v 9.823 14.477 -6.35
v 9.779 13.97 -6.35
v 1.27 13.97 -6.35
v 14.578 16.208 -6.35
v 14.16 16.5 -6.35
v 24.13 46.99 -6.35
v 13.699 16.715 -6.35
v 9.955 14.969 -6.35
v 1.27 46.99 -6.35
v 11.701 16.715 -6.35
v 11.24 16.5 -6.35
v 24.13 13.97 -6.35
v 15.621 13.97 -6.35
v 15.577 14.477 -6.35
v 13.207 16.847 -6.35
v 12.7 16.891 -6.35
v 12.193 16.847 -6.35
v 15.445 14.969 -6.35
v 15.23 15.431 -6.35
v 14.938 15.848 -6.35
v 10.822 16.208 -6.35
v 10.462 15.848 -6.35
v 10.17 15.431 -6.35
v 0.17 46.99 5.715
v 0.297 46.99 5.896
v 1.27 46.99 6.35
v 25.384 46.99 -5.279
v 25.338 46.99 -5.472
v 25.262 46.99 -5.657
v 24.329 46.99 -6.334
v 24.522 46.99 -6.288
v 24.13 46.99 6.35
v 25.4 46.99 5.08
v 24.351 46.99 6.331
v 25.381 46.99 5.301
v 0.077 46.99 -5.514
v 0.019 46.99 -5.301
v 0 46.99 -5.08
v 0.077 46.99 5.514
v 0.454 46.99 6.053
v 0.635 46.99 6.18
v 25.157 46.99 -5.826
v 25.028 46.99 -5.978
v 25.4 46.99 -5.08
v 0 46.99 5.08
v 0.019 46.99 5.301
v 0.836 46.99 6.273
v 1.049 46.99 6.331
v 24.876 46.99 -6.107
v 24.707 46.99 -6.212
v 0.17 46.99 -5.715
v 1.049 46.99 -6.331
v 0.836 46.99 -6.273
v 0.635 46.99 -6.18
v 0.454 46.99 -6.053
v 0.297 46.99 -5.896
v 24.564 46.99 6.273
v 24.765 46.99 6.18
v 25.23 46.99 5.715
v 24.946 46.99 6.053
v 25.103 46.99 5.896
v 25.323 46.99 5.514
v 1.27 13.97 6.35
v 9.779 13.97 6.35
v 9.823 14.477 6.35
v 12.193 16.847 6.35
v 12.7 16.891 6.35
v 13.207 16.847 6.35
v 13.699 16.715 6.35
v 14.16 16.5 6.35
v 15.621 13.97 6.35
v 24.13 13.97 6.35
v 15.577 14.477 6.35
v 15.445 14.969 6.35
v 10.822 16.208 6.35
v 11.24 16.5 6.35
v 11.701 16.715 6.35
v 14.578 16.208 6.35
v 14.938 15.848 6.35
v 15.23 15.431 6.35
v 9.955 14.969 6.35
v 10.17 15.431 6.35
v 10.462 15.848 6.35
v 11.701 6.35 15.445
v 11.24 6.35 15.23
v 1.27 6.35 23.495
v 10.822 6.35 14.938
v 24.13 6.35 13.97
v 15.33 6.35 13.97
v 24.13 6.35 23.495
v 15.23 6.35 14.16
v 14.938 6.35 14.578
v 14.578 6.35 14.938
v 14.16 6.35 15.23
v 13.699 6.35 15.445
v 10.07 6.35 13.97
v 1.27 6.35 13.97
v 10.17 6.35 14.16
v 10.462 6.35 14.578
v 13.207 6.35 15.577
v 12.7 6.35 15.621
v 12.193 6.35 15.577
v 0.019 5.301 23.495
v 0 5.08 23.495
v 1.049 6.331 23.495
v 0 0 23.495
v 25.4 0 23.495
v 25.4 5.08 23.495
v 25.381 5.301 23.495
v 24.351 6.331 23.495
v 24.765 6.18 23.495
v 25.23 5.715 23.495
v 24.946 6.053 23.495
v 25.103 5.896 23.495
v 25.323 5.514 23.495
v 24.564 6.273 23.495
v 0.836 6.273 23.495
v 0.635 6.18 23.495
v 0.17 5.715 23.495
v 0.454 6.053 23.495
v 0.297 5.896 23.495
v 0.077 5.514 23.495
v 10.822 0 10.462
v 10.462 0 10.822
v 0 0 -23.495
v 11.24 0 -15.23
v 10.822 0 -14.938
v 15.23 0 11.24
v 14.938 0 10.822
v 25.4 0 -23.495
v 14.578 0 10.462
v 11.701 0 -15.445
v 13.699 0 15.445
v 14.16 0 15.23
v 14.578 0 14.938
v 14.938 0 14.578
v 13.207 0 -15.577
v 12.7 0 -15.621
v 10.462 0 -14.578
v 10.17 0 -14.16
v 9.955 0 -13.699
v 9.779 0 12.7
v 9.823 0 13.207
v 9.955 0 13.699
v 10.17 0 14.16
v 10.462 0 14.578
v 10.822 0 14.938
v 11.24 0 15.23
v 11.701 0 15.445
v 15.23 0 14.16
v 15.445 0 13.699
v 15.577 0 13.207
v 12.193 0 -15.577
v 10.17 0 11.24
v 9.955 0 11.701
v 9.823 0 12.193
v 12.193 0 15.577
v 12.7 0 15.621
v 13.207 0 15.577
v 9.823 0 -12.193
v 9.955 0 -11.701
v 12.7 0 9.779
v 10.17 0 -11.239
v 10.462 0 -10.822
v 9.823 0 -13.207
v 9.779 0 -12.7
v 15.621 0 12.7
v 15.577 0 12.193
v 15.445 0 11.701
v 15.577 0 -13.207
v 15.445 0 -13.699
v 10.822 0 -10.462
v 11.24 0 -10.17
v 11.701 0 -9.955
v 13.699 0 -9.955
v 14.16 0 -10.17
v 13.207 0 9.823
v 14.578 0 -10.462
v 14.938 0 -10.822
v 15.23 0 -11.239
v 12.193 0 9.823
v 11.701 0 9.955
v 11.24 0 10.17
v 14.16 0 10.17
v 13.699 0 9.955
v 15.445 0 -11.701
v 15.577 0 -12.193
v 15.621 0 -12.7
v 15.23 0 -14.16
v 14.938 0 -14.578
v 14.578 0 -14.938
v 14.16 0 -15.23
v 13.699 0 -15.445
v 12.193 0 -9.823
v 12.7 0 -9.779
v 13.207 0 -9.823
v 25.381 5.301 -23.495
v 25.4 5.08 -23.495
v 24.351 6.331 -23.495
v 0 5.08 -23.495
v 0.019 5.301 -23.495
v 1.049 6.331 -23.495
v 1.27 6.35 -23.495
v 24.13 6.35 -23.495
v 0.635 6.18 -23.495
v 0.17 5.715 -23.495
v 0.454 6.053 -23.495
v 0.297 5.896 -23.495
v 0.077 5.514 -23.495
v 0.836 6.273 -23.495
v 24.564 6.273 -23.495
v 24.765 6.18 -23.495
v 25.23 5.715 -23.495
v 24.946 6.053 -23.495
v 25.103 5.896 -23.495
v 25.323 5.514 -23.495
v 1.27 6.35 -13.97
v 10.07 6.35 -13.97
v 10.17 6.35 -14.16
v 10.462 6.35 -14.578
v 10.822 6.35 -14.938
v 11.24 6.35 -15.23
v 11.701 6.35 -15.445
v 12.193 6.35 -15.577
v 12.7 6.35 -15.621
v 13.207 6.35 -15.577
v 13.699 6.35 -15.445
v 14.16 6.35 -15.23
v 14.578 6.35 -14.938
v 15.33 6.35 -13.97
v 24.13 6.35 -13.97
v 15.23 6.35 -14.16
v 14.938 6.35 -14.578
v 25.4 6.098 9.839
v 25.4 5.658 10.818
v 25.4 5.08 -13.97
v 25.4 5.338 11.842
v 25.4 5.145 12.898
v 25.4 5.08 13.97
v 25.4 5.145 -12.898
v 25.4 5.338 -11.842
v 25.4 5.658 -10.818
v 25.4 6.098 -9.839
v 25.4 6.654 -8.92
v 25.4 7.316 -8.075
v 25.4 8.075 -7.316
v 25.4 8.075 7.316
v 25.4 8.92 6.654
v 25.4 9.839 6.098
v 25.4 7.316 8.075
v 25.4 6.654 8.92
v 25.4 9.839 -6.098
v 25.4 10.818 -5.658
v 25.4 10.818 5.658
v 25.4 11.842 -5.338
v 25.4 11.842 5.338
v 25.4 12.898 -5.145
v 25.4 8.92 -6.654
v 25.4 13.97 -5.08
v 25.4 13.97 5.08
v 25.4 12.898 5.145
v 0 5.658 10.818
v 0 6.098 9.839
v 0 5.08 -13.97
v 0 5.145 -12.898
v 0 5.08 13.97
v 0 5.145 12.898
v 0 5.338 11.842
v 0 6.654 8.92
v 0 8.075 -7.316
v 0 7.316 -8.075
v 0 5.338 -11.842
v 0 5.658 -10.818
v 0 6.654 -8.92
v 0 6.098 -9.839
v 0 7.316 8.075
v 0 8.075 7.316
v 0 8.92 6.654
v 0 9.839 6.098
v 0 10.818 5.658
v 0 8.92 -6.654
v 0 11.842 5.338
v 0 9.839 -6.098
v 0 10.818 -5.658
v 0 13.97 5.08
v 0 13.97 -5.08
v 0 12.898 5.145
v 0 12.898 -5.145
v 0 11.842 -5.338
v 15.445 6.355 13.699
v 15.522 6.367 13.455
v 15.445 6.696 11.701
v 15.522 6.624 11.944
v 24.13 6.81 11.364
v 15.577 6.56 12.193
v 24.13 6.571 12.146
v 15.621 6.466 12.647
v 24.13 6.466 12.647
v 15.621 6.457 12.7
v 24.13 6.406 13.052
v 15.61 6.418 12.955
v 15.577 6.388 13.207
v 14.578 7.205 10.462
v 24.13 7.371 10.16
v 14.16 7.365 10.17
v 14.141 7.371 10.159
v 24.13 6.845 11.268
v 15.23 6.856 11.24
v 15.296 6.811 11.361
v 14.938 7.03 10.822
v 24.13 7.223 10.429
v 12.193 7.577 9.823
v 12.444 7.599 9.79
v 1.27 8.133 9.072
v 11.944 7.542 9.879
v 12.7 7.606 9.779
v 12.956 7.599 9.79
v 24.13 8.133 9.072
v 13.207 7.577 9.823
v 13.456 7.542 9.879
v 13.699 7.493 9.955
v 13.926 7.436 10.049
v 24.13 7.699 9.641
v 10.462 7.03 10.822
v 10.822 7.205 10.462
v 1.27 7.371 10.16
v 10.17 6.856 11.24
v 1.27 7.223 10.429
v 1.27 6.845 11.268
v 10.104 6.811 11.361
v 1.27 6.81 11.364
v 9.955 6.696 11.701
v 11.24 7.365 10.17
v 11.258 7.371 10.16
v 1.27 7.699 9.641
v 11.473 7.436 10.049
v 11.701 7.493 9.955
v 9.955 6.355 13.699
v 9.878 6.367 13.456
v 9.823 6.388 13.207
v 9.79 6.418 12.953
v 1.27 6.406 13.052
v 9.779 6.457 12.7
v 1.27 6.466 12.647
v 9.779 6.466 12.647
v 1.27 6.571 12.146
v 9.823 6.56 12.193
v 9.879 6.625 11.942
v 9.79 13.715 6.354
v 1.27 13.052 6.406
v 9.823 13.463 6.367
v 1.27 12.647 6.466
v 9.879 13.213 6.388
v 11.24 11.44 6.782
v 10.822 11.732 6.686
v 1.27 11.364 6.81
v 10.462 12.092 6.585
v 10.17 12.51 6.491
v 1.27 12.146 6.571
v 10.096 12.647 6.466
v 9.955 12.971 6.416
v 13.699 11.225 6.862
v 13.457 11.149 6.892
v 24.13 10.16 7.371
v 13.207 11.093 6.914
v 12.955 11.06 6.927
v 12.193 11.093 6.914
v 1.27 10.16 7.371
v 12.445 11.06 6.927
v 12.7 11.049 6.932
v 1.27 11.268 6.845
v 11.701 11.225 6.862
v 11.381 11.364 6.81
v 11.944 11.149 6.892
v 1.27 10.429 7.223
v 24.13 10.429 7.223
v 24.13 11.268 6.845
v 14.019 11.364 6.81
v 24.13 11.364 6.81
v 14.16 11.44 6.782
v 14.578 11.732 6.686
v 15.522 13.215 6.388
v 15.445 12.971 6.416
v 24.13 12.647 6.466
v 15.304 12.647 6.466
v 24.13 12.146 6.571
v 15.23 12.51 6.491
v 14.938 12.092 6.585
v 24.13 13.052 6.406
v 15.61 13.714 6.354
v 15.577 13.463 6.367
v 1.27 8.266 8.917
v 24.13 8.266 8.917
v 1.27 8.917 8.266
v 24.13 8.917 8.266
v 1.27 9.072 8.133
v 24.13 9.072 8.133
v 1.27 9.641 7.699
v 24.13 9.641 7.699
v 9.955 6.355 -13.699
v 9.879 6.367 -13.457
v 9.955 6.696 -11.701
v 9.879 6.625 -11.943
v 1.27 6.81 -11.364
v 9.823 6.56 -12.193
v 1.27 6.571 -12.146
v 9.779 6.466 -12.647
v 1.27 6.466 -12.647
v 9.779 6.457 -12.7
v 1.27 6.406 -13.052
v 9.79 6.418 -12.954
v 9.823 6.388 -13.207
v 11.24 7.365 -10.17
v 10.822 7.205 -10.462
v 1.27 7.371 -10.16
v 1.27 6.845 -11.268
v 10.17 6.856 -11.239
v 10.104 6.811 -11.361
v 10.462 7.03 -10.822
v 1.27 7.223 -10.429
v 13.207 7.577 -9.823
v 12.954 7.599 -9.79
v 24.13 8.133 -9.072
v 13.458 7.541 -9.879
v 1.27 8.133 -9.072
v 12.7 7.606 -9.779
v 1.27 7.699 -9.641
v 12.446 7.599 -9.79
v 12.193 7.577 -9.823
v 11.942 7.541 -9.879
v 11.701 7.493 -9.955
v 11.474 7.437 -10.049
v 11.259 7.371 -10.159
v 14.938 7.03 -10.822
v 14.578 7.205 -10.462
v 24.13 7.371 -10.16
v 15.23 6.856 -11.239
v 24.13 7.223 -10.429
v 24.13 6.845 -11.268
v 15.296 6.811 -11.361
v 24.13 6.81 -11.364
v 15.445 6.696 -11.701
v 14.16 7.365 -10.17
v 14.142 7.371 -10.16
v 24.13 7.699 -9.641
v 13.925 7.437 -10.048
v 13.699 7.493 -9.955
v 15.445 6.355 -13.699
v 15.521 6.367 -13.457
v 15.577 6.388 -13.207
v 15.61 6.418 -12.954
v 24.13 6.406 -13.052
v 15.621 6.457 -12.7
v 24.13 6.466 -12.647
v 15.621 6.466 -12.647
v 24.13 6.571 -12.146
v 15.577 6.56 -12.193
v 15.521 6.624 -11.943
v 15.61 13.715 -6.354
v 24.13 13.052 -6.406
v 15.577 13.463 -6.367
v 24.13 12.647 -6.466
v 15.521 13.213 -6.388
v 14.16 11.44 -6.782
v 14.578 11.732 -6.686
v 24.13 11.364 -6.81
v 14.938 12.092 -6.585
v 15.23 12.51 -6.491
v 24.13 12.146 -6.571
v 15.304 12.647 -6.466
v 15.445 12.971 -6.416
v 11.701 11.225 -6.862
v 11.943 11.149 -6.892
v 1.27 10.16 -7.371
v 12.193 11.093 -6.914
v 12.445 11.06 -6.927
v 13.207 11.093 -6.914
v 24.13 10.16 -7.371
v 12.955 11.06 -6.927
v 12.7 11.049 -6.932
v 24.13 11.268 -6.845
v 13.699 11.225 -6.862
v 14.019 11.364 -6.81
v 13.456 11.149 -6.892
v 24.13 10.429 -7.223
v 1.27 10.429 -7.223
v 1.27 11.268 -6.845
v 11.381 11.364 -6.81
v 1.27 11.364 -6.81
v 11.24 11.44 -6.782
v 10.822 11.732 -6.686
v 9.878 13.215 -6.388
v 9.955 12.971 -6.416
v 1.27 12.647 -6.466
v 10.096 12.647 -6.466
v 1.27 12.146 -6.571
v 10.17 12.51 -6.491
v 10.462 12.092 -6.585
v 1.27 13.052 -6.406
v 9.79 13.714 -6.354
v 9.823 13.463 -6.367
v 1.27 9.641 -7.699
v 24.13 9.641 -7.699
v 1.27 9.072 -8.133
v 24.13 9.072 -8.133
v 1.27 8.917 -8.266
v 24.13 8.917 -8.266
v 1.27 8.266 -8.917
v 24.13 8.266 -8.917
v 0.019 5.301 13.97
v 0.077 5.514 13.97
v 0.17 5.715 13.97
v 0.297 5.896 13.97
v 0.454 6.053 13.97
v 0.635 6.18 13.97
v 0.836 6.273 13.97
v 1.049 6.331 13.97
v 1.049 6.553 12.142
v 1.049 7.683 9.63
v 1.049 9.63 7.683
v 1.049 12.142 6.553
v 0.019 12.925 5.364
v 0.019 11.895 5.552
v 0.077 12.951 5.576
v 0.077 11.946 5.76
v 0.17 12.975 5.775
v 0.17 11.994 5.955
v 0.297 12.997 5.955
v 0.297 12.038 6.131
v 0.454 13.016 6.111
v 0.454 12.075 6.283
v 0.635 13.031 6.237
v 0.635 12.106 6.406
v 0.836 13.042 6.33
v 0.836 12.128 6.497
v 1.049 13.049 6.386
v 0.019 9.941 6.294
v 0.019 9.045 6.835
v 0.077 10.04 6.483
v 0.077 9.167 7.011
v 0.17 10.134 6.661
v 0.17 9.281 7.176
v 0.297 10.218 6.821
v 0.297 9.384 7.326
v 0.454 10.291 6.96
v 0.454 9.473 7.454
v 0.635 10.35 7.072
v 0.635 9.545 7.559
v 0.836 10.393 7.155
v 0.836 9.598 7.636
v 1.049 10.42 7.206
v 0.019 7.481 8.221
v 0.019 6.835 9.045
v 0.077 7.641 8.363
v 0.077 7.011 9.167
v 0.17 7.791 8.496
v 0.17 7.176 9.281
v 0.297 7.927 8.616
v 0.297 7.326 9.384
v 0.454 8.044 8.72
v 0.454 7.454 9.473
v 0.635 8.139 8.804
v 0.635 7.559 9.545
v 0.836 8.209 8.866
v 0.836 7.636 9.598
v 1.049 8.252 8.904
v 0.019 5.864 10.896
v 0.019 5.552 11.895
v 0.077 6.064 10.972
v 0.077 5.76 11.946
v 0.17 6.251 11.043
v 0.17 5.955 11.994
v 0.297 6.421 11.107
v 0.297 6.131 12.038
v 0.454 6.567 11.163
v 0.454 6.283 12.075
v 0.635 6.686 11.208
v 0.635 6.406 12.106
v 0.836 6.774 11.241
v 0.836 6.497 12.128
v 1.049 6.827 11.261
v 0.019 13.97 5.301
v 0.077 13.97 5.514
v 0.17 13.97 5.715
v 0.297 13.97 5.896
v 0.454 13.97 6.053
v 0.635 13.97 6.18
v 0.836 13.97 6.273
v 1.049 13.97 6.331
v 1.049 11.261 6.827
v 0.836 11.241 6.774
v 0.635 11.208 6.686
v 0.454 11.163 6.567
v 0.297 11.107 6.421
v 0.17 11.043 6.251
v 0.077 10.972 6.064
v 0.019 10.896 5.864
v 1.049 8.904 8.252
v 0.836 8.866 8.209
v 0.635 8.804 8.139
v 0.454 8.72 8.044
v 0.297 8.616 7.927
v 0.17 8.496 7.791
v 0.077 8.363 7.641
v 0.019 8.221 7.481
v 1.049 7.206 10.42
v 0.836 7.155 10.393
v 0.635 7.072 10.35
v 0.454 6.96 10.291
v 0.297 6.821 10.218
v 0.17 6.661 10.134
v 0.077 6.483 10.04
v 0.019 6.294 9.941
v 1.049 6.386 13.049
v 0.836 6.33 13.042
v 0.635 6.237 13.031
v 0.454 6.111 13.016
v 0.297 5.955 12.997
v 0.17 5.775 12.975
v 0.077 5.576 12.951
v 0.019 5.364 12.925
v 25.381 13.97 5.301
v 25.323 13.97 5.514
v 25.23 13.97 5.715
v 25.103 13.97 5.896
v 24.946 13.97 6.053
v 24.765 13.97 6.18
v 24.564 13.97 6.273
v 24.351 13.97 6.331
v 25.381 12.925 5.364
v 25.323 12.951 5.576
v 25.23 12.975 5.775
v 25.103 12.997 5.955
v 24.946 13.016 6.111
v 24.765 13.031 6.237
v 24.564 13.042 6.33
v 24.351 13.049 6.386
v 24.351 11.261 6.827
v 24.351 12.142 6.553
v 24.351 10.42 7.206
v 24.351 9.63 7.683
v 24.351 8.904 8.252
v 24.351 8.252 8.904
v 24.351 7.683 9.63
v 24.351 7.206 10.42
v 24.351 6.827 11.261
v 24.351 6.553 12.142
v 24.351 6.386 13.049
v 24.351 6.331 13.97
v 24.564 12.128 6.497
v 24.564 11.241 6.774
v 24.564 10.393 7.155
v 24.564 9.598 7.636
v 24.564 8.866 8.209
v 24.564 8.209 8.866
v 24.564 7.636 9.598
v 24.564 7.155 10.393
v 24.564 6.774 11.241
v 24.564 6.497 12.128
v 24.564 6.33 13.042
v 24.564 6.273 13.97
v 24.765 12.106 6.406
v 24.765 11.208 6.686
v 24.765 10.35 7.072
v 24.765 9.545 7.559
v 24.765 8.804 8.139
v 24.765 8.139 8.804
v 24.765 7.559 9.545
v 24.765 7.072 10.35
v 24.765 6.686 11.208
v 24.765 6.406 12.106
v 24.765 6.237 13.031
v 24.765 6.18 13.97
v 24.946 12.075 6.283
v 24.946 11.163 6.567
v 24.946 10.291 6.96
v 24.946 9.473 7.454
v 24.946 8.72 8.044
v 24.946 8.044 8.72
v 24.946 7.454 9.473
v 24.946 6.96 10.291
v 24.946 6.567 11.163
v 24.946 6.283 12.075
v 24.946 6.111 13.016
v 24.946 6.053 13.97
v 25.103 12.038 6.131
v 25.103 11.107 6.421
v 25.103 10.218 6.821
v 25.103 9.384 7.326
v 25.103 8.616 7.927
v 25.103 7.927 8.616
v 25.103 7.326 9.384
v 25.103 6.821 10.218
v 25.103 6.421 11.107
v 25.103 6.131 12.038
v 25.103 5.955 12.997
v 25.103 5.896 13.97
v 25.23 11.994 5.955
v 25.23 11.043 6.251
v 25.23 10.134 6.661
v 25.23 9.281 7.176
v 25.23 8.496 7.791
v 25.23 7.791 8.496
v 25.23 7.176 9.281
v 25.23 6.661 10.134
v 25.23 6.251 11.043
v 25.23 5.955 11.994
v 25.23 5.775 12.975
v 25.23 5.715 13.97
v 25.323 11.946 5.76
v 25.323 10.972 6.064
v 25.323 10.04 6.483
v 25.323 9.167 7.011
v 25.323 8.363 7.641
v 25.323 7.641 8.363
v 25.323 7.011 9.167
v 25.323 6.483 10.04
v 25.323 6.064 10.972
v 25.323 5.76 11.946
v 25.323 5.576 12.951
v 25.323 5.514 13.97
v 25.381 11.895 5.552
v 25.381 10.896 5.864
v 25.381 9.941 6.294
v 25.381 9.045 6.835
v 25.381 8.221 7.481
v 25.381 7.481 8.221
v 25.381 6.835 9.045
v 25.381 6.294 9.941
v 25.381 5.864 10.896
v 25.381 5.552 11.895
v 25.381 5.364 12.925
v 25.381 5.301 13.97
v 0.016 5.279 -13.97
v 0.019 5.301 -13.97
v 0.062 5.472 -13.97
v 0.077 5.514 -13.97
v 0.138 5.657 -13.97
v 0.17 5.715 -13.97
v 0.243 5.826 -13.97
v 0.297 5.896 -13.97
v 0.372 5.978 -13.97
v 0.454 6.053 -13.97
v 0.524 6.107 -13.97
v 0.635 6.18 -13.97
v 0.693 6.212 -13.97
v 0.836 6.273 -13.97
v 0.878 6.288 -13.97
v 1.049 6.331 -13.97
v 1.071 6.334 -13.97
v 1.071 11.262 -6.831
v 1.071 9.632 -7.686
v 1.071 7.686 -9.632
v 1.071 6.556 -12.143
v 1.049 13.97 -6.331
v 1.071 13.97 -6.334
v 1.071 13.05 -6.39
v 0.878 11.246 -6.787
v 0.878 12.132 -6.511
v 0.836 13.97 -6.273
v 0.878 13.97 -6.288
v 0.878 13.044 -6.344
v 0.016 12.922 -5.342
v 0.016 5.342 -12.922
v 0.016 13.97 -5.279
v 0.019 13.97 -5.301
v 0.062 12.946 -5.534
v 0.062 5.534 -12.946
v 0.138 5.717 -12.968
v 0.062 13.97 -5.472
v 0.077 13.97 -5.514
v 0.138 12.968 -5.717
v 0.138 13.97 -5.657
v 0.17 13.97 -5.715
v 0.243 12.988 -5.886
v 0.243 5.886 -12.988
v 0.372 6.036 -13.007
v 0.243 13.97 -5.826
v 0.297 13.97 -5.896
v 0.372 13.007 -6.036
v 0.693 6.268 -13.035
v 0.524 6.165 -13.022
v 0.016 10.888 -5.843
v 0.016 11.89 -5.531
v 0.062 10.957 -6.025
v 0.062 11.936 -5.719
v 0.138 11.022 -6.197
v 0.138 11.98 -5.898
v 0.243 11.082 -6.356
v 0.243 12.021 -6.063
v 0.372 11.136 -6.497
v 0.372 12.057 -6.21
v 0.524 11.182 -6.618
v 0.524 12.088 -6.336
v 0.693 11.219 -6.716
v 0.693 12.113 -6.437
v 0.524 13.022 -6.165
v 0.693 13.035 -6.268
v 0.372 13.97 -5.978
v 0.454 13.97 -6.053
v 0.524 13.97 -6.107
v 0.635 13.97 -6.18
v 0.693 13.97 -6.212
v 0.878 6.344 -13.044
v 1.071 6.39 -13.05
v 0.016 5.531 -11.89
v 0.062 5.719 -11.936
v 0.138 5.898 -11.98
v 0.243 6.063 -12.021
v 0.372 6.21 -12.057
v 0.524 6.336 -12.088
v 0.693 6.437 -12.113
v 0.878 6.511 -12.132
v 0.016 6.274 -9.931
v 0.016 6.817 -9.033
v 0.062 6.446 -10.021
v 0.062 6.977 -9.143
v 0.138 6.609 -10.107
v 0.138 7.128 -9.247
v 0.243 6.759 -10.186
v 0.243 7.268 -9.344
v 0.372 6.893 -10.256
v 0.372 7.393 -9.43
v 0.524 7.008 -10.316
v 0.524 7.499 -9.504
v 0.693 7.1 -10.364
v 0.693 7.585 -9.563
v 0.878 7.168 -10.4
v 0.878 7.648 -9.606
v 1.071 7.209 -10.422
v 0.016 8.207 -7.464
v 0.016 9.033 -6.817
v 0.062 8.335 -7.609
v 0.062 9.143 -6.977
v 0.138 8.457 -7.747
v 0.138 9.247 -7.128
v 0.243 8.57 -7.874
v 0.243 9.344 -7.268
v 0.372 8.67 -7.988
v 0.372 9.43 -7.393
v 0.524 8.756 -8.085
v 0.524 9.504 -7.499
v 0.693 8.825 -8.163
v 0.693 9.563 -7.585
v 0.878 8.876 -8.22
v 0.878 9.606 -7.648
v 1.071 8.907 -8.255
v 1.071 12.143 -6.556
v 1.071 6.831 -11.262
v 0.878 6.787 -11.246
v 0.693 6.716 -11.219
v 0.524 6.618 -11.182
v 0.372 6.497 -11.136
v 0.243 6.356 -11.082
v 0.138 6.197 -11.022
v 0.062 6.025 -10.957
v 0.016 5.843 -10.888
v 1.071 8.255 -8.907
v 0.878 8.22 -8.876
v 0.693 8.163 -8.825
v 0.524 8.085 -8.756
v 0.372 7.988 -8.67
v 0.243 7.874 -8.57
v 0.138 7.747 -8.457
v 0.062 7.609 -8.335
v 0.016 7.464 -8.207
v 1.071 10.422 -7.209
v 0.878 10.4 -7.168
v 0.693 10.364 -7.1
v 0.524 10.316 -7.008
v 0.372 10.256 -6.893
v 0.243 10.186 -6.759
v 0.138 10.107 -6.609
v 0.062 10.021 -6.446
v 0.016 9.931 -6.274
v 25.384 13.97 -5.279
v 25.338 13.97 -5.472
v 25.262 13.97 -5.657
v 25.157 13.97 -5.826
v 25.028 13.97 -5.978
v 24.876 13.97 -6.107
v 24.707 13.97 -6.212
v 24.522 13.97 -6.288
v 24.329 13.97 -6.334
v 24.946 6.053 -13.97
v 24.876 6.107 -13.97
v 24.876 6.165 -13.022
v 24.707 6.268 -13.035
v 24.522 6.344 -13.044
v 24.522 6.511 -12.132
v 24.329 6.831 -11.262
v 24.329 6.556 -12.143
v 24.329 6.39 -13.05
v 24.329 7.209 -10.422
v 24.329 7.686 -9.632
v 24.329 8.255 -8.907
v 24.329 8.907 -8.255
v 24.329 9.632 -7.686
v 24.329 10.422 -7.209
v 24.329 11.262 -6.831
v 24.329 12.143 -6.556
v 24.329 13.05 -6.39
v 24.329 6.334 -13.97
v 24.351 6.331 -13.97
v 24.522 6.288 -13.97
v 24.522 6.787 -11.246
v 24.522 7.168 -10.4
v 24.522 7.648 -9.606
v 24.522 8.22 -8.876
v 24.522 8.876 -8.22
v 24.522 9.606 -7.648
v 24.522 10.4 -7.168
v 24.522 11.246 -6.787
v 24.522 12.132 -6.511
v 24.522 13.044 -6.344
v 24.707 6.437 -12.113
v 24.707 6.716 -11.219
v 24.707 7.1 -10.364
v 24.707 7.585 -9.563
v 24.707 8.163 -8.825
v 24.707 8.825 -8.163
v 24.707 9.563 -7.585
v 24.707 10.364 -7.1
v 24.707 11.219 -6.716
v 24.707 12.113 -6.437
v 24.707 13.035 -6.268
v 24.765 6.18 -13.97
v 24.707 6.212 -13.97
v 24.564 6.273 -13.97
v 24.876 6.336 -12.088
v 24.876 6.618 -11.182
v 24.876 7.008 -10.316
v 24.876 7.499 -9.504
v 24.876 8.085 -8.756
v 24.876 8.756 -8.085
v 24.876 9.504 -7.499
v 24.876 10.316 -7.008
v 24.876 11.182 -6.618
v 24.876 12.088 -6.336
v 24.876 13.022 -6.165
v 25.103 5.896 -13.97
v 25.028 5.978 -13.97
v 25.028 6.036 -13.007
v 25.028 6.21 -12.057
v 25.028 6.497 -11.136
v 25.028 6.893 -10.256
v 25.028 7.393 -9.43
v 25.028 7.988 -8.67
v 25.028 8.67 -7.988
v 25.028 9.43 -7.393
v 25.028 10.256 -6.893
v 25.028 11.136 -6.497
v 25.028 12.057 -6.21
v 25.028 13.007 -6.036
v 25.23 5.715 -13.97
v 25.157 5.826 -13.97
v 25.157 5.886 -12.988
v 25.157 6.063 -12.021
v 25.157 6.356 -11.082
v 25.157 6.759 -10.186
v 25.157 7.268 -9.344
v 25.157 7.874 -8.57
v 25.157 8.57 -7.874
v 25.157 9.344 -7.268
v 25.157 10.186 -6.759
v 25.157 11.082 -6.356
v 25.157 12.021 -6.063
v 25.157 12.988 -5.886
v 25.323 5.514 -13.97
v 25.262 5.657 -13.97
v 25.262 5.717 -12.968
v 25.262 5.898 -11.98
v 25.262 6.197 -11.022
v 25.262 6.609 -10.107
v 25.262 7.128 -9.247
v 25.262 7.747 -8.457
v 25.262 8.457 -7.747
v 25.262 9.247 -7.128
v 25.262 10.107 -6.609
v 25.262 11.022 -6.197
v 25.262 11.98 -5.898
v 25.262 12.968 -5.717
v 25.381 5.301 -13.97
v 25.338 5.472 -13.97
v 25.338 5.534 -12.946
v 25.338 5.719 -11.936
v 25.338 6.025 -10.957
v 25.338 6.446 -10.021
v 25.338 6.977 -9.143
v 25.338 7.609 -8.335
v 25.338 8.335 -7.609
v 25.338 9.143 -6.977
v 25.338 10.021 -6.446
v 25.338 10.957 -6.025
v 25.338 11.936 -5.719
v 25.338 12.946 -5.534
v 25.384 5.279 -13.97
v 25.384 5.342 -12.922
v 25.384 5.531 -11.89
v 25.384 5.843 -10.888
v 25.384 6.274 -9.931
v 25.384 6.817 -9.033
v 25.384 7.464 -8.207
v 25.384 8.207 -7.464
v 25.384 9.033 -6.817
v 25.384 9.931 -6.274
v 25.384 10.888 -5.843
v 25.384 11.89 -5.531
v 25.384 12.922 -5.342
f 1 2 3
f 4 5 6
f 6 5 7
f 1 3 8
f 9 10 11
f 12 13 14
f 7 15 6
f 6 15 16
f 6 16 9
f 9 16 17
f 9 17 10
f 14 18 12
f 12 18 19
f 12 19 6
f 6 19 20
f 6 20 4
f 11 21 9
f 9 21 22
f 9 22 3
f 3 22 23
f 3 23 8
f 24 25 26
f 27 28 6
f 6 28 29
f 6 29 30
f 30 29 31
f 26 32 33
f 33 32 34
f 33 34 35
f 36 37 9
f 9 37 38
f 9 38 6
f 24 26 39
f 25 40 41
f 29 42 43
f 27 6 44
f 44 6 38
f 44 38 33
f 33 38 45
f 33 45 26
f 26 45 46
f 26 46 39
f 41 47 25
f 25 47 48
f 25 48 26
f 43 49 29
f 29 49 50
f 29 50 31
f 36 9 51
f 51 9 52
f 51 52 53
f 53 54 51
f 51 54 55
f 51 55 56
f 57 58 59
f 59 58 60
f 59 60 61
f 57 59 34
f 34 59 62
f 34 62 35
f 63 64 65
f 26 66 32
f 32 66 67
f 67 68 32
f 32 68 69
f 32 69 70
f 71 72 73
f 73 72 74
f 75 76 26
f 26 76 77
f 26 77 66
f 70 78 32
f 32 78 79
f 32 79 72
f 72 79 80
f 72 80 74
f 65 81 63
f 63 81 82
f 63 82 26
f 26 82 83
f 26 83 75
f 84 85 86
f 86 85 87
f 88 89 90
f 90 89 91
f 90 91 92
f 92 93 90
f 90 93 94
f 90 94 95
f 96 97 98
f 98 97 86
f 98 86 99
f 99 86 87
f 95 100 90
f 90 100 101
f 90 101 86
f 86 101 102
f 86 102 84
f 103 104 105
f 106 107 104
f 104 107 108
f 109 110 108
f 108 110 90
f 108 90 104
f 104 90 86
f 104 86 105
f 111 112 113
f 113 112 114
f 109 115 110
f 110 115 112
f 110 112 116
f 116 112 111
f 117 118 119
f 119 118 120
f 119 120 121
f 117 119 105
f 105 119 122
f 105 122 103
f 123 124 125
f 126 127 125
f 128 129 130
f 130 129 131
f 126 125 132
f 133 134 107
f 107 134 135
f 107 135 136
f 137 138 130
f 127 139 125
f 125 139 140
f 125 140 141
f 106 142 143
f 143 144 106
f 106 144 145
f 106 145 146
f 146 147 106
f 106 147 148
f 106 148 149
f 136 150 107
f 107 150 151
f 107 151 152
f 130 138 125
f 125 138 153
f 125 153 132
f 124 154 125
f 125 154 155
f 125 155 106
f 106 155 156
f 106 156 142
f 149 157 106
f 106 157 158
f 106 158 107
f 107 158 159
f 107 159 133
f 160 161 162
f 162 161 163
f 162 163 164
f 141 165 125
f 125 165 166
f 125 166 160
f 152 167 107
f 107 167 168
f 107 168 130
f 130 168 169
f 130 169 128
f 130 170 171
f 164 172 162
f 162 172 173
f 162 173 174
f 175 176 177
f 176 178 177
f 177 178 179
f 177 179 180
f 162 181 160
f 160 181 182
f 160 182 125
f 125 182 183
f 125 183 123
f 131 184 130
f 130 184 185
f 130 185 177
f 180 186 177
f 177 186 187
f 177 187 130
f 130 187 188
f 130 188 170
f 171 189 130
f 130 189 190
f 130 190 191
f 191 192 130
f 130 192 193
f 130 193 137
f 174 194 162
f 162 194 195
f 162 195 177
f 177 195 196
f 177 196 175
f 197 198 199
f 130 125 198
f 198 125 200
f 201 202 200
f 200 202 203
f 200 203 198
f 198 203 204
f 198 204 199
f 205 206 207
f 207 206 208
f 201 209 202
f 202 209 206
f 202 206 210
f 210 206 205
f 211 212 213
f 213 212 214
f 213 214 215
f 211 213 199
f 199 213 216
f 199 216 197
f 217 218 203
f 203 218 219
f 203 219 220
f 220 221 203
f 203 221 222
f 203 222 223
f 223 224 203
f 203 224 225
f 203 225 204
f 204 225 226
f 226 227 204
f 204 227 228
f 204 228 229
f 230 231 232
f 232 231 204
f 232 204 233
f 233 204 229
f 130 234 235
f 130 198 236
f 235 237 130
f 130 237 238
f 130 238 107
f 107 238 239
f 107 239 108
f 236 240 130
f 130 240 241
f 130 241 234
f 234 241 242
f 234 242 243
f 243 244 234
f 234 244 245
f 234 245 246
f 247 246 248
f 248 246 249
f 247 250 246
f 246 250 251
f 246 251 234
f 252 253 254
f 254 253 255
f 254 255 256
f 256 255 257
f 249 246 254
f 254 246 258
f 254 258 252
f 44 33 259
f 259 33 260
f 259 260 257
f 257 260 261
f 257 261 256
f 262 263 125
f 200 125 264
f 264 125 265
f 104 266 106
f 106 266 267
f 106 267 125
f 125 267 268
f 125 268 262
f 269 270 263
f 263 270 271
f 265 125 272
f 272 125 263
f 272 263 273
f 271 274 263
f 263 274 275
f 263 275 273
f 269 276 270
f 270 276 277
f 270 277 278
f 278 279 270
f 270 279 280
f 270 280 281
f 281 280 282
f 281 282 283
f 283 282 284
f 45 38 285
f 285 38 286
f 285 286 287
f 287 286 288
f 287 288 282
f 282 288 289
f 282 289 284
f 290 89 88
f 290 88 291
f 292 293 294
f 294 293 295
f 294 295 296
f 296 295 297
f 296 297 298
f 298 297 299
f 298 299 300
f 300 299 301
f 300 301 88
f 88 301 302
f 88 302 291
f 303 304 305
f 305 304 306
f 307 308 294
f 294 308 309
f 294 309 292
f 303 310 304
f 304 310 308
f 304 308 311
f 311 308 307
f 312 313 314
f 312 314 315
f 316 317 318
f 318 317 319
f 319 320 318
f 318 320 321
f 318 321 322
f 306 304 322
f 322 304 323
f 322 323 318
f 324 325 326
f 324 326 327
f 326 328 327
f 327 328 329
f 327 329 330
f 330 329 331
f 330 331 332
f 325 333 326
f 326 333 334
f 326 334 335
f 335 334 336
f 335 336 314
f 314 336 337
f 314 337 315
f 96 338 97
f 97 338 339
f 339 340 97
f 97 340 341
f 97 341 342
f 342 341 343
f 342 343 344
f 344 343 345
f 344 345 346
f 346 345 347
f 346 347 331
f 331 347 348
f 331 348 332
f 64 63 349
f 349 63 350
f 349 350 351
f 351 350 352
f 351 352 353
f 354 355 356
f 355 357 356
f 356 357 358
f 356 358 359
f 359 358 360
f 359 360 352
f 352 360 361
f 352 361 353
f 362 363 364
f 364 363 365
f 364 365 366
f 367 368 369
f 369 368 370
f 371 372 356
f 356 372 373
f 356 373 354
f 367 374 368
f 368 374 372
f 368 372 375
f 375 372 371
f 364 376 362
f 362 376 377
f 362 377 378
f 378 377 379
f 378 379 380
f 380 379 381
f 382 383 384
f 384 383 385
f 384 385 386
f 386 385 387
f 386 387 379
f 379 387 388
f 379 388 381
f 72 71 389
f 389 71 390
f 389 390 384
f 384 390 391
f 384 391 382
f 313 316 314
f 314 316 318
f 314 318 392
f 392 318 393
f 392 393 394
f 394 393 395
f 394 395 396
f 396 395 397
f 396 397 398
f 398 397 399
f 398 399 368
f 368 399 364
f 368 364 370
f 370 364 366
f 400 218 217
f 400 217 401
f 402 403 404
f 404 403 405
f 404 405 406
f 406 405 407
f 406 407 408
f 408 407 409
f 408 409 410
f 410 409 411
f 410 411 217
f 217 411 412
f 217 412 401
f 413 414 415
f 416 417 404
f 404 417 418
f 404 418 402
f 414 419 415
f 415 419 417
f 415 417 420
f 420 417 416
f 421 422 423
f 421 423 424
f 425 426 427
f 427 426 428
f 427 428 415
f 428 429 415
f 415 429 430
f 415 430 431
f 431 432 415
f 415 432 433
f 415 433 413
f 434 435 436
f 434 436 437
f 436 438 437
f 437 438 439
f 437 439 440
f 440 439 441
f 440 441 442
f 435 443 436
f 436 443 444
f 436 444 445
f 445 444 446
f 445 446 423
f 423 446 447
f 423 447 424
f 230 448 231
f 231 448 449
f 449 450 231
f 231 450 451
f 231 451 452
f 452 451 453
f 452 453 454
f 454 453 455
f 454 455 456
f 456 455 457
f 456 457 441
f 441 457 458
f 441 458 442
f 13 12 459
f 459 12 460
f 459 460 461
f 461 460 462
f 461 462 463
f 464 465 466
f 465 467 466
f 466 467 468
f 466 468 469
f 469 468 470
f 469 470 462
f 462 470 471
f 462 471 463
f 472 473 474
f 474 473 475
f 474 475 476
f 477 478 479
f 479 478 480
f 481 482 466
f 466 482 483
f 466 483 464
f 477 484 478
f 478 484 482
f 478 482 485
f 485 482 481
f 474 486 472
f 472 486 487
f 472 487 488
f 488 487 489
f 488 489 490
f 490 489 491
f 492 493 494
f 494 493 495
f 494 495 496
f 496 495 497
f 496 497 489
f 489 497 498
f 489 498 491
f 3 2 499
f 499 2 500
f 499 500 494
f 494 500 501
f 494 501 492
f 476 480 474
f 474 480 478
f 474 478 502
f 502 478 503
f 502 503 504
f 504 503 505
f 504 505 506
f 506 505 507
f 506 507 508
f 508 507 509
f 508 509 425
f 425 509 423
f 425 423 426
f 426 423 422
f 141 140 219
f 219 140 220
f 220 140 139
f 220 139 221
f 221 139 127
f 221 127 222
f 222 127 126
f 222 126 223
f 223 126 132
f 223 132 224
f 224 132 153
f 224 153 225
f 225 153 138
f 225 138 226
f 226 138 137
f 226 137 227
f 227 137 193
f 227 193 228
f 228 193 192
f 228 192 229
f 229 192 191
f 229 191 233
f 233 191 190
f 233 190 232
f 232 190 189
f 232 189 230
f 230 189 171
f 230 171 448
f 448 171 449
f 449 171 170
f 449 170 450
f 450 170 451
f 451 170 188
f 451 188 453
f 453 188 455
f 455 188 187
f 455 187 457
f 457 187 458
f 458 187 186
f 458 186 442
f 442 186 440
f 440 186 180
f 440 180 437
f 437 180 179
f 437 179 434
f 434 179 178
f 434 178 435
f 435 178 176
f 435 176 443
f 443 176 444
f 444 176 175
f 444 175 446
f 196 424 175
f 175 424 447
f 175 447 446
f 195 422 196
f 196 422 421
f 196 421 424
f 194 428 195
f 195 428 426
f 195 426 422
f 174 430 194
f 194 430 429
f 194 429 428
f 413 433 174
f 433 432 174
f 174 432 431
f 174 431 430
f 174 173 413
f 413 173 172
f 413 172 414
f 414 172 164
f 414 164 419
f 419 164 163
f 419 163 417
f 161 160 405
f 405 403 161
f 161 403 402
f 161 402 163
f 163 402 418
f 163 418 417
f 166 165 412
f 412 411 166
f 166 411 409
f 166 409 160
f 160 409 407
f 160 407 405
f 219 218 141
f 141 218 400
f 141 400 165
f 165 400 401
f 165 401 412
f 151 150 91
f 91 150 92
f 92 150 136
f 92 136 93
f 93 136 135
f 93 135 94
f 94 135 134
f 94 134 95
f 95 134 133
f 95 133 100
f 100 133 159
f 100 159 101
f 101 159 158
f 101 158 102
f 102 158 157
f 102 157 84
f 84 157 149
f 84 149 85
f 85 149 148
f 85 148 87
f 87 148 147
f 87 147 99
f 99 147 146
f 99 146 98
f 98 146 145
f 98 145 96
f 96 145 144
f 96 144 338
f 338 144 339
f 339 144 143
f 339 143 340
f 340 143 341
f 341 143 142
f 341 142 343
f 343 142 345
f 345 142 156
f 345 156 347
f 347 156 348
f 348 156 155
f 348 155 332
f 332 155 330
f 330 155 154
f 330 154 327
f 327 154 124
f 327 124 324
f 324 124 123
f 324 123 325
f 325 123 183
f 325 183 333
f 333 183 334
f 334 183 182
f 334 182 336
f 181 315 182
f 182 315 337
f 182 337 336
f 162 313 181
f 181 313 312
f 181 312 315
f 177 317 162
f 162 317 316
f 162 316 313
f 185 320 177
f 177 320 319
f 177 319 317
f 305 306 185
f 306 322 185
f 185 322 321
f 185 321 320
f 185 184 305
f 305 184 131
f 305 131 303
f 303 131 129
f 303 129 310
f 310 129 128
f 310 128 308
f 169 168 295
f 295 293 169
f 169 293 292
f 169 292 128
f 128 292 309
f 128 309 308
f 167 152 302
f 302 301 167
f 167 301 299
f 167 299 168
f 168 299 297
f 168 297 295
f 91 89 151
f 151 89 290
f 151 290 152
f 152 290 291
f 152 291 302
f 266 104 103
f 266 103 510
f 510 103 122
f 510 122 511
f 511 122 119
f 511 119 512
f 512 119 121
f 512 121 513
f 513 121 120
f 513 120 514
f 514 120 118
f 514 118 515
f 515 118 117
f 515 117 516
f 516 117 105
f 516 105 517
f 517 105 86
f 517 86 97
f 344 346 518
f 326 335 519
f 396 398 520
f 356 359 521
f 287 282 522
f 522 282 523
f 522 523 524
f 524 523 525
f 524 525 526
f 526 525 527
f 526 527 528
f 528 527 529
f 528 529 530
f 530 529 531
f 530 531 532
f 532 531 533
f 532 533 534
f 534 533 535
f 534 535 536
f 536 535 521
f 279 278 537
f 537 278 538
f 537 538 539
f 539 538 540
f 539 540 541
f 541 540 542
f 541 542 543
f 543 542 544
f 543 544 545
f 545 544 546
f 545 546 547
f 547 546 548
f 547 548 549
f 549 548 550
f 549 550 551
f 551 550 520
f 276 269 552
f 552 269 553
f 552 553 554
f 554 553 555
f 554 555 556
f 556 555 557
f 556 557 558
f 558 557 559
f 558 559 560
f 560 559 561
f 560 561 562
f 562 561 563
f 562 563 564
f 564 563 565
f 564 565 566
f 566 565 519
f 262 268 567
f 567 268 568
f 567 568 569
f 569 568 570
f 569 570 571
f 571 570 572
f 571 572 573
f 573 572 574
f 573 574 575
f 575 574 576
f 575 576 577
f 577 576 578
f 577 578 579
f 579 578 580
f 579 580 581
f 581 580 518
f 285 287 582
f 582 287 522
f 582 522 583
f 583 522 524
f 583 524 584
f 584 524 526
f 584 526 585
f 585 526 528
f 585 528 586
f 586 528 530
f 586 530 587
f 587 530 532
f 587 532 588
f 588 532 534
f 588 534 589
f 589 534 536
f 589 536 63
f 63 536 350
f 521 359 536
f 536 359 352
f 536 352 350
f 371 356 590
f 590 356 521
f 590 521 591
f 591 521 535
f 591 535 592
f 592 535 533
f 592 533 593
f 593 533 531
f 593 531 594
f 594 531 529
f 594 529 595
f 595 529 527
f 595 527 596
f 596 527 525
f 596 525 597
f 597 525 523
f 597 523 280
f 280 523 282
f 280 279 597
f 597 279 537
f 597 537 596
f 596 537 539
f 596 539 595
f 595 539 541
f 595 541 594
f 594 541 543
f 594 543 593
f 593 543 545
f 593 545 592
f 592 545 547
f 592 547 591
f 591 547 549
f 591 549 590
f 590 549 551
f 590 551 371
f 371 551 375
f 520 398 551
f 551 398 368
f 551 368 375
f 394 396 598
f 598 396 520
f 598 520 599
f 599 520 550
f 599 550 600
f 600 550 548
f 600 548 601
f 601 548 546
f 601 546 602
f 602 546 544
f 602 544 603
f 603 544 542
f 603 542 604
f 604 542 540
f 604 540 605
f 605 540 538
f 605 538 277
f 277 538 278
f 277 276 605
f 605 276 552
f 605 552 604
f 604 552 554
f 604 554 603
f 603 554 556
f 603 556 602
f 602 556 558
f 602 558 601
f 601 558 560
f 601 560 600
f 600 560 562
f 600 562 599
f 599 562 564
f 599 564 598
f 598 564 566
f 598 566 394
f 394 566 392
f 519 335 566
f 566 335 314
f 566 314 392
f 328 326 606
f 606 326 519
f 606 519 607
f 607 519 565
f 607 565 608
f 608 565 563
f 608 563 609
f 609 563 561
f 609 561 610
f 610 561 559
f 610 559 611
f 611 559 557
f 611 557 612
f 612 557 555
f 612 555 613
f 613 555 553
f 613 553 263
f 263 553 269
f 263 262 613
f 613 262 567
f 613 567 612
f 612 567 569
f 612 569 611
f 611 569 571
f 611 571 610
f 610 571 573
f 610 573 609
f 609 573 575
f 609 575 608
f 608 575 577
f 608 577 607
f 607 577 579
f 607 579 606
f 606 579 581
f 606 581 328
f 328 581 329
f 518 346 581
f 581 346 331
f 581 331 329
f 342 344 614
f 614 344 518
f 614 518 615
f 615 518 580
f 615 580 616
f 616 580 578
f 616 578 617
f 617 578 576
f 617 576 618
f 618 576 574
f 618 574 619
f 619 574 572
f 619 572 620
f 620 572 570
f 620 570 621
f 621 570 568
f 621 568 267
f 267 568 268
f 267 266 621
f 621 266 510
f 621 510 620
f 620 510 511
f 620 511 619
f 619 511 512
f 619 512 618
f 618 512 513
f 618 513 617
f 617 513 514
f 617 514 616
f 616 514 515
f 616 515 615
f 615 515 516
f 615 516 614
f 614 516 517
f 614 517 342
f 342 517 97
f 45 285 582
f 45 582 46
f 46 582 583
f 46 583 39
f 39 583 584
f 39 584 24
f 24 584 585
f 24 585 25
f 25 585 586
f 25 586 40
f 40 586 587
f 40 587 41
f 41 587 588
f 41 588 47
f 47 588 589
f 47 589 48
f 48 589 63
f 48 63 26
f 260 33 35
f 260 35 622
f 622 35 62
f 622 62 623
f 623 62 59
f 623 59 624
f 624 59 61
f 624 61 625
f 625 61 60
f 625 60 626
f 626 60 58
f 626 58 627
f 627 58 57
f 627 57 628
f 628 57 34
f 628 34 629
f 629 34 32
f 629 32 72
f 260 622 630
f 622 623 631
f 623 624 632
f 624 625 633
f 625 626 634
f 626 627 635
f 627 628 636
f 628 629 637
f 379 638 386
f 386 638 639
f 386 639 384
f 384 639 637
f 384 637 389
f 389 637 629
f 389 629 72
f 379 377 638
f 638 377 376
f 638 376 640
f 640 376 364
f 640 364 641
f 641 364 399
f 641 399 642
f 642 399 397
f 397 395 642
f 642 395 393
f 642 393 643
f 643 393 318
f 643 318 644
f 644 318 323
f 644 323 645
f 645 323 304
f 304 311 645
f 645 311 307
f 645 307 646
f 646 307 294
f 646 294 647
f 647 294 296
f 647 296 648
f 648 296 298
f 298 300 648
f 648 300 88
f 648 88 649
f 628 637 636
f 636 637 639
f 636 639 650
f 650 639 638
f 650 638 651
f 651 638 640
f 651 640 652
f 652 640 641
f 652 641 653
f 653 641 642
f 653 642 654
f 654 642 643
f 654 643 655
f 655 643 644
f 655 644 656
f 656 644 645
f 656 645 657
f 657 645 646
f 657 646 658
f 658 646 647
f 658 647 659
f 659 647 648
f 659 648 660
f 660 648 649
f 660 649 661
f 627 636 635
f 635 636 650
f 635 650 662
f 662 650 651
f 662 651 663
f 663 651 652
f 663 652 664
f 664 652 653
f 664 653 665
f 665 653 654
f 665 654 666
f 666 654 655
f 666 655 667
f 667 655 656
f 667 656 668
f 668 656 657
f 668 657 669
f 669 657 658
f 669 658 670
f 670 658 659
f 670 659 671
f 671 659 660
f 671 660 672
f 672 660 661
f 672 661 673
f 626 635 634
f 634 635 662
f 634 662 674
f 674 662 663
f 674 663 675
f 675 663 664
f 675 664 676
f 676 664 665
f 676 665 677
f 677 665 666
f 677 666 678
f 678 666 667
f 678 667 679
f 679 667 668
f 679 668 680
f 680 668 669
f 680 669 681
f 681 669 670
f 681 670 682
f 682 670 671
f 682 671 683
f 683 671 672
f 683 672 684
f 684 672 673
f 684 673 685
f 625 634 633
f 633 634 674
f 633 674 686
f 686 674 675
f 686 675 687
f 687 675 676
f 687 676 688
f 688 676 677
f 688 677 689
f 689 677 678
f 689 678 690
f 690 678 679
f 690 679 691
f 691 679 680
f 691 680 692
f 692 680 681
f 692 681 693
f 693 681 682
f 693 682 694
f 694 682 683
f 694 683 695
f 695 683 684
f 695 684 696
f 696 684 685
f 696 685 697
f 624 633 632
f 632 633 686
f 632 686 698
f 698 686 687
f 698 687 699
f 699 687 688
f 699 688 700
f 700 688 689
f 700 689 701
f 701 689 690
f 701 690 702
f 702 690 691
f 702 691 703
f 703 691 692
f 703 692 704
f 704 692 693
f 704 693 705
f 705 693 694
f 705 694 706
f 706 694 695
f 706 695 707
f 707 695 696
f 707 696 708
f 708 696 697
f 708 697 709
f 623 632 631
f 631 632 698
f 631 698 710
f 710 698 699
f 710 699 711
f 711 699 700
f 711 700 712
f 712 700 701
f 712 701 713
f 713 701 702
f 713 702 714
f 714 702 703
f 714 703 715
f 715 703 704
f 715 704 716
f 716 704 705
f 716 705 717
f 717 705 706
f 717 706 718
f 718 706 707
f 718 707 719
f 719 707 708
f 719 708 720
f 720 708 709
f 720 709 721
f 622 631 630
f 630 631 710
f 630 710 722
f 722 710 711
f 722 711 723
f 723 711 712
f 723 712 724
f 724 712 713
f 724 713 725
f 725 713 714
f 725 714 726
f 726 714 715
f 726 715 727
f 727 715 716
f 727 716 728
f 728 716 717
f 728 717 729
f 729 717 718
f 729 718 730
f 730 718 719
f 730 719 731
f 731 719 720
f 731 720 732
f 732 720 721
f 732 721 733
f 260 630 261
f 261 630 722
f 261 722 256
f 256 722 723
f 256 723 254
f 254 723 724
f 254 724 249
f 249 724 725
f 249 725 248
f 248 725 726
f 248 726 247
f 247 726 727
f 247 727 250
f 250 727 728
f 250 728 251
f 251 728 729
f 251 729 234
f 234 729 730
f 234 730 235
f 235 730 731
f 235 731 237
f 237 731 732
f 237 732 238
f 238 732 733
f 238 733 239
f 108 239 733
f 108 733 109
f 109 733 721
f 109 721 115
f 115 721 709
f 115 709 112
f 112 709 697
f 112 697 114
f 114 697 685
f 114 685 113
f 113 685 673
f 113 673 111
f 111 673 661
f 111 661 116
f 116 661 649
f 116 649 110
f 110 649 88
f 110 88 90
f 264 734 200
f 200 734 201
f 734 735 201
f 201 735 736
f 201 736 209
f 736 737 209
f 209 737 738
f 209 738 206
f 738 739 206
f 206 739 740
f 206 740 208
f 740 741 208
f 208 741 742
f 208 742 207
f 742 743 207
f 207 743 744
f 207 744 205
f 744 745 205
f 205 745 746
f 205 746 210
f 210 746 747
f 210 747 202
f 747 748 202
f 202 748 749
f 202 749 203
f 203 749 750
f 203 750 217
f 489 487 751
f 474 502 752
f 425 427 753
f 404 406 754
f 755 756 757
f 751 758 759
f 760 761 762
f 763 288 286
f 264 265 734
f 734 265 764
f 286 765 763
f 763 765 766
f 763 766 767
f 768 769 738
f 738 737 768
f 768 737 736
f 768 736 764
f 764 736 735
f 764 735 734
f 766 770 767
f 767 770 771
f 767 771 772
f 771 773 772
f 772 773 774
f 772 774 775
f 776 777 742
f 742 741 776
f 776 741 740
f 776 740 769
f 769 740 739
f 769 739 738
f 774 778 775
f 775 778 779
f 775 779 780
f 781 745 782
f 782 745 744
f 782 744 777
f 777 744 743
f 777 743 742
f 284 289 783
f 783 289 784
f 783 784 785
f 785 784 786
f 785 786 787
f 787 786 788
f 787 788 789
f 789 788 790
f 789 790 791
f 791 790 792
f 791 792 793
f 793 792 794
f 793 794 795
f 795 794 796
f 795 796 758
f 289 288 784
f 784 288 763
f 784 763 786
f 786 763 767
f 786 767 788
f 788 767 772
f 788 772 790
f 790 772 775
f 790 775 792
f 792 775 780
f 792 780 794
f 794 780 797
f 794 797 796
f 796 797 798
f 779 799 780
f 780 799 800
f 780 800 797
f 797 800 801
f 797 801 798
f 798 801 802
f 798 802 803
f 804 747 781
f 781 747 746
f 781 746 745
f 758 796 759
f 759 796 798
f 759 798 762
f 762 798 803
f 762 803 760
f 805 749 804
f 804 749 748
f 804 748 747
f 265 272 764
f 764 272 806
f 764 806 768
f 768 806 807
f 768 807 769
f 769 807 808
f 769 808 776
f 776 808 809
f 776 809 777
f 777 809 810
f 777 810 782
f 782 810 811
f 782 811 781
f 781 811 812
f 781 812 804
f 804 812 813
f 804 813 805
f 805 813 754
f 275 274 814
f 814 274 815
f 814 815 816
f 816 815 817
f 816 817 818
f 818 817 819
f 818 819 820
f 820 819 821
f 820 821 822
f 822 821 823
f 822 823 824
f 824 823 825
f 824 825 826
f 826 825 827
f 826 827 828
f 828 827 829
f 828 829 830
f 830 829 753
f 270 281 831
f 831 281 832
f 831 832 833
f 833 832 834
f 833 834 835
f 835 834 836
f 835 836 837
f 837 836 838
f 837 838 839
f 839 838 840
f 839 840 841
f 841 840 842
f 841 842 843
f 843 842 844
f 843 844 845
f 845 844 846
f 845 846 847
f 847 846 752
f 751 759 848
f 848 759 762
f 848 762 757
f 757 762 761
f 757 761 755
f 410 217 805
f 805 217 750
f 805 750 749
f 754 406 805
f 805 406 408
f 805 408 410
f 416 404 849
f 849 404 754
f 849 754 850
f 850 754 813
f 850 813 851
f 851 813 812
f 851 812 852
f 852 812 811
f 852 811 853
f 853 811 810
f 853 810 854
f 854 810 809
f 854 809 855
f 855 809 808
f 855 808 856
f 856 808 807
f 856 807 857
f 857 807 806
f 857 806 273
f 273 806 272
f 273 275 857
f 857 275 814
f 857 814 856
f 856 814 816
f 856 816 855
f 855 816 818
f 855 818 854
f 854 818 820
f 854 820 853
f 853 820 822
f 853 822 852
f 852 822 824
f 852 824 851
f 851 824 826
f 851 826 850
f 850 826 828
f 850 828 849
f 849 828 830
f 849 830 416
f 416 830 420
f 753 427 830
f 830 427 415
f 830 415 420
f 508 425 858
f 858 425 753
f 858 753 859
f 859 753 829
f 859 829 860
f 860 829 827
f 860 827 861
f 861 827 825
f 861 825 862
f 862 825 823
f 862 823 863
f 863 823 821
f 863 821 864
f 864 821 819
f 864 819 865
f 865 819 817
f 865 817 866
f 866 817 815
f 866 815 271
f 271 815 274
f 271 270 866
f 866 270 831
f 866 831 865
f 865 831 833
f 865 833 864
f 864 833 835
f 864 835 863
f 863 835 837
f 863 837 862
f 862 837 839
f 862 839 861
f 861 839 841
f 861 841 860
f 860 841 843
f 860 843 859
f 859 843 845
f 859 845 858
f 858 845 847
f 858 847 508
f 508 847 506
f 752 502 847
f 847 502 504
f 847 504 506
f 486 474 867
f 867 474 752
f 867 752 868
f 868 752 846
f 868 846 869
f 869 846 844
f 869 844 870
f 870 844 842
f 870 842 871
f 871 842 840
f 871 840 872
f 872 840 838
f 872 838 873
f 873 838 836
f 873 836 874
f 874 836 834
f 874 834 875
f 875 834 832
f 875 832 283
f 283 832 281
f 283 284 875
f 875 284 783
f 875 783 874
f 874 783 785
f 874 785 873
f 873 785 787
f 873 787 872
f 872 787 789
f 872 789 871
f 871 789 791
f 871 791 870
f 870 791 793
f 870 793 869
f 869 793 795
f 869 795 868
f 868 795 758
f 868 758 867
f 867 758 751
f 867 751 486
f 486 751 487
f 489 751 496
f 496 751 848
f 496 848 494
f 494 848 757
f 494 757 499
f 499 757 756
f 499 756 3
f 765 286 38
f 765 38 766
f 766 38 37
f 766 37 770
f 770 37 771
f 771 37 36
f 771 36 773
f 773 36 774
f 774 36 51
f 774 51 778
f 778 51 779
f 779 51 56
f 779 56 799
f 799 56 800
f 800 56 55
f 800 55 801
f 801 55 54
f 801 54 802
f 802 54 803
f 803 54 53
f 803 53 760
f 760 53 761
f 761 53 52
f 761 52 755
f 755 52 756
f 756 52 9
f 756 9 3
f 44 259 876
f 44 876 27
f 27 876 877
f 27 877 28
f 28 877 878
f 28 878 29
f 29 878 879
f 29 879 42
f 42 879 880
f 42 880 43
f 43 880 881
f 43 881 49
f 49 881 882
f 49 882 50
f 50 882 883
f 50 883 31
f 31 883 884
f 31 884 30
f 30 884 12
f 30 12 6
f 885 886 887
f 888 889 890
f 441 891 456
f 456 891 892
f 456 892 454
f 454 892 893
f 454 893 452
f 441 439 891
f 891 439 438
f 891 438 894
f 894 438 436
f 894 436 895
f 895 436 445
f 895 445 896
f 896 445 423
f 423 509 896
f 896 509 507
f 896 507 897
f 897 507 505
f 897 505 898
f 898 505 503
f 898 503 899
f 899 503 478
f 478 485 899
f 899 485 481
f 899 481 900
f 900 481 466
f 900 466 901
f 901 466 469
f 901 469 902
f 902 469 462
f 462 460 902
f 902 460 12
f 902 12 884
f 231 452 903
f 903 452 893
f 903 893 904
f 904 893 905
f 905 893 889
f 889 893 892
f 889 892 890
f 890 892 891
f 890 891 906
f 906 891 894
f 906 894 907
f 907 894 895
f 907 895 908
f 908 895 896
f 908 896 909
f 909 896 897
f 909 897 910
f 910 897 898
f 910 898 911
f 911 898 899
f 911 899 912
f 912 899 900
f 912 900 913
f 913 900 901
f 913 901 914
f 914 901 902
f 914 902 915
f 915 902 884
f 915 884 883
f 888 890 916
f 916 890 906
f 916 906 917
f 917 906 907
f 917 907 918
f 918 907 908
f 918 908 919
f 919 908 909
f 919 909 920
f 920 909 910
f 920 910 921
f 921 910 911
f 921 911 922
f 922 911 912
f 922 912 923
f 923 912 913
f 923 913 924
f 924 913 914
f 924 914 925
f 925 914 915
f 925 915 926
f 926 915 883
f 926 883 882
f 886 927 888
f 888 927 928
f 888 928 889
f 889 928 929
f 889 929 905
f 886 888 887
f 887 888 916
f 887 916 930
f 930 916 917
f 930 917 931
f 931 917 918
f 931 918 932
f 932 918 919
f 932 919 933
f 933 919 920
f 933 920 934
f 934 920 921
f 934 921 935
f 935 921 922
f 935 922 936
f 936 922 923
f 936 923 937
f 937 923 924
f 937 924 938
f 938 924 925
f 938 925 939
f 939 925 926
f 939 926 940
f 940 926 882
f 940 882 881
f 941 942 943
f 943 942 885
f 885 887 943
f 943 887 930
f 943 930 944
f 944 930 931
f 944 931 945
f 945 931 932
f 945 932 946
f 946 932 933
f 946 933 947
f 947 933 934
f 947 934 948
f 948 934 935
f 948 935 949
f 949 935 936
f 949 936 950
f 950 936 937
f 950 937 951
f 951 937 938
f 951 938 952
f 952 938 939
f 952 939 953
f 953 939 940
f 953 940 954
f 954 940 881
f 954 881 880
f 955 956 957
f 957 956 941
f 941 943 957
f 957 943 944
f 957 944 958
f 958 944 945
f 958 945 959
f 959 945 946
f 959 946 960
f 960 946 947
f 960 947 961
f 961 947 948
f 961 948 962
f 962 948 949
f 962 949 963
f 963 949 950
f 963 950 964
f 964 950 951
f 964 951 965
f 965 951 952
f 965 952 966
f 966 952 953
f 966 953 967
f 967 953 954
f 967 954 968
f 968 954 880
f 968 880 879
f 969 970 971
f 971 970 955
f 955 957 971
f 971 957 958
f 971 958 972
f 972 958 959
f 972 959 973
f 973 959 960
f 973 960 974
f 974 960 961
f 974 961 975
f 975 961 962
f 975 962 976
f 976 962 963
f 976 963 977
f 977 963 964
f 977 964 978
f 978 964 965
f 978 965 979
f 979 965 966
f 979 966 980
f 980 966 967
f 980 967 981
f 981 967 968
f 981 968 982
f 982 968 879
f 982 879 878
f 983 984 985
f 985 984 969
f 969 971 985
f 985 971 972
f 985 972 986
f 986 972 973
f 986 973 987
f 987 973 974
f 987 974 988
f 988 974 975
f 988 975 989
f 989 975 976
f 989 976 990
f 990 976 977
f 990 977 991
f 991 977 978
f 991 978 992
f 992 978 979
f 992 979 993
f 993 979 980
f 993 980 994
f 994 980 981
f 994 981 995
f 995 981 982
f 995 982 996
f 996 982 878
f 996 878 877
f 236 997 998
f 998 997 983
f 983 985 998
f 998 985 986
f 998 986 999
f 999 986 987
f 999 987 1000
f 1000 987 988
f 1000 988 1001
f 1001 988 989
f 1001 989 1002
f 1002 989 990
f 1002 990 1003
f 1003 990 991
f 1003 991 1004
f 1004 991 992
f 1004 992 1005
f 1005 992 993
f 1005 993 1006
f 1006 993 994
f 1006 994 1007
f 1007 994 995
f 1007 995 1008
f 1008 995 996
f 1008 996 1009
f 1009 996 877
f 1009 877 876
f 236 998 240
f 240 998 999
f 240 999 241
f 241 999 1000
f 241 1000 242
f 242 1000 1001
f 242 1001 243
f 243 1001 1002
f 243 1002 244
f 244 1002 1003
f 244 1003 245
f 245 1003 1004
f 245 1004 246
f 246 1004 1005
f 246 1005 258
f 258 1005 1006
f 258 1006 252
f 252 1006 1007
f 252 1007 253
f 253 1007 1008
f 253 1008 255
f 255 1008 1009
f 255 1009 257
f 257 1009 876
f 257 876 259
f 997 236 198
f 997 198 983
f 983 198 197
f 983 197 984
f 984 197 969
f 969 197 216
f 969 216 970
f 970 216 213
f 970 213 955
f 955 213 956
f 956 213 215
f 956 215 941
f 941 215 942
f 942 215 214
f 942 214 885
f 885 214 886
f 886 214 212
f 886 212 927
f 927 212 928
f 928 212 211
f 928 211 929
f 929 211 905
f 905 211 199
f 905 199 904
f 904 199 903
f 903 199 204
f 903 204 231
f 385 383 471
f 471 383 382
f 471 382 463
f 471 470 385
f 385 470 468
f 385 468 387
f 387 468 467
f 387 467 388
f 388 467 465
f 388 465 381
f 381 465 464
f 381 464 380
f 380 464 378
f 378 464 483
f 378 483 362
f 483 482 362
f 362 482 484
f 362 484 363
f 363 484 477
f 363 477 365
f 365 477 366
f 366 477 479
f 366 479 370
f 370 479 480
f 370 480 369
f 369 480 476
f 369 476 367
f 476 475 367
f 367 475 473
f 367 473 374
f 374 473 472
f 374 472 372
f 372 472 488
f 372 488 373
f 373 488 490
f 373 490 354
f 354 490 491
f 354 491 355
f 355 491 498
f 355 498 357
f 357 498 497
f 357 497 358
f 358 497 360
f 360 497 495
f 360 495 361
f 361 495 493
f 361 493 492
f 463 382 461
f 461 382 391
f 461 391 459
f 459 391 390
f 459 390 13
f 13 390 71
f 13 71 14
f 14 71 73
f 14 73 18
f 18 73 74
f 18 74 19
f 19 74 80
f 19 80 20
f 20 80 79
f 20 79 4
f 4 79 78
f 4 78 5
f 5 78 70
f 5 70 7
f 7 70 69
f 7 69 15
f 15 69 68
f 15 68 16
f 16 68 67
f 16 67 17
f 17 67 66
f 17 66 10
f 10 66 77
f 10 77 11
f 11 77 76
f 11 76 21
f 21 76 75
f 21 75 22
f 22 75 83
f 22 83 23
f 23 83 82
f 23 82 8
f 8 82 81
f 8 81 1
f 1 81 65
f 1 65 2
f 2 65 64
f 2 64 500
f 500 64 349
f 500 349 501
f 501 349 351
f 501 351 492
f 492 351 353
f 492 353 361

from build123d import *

# Parameters (mm, degrees)
BOSS_EXTRUDE1_DEPTH     = 25.4
FILLET1_R               = 7.62
SKETCH2_R               = 2.921
CUT_EXTRUDE1_DEPTH      = 59.354392508
FILLET2_R               = 1.27
CUT_EXTRUDE2_DEPTH      = 62.187777579
CUT_EXTRUDE2_DEPTH_BACK = 62.187777579
SKETCH3_R               = 2.921


with BuildPart() as part:
    # Sketch1 → Boss-Extrude1 (new body)
    with BuildSketch(Plane(origin=(0, 0, 0), x_dir=(0, 0, -1), z_dir=(1, 0, 0))):
        Polygon((-6.35, 46.99), (6.35, 46.99), (6.35, 6.35), (23.495, 6.35), (23.495, 0), (-23.495, 0), (-23.495, 6.35), (-6.35, 6.35), align=None)
    extrude(amount=BOSS_EXTRUDE1_DEPTH)

    # Fillet1
    fillet1_edges = [part.edges().sort_by_distance(p)[0] for p in [
        (12.7, 6.35, -6.35),
        (12.7, 6.35, 6.35),
    ]]
    fillet(fillet1_edges, radius=FILLET1_R)

    # Sketch2 → Cut-Extrude1 (cut, through all)
    with BuildSketch(Plane.XZ):
        with Locations(Location((12.7, 12.7, 0), (0, 0, 270))):
            Circle(SKETCH2_R)
        with Locations(Location((12.7, -12.7, 0), (0, 0, 334.228538259))):
            Circle(SKETCH2_R)
    extrude(amount=-CUT_EXTRUDE1_DEPTH, mode=Mode.SUBTRACT)

    # Fillet2
    fillet2_edges = [part.edges().sort_by_distance(p)[0] for p in [
        (0, 30.48, 6.35),
        (25.4, 30.48, 6.35),
        (0, 6.35, 18.7325),
        (25.4, 6.35, 18.7325),
        (0, 30.48, -6.35),
        (25.4, 30.48, -6.35),
        (0, 8.581846327, 8.581846327),
        (25.4, 8.581846327, 8.581846327),
        (0, 8.581846327, -8.581846327),
        (25.4, 8.581846327, -8.581846327),
        (25.4, 6.35, -18.7325),
        (0, 6.35, -18.7325),
    ]]
    fillet(fillet2_edges, radius=FILLET2_R)

    # Sketch3 → Cut-Extrude2 (cut, two sides: drawn at the far end of the back side and taken through both)
    with BuildSketch(Plane(origin=(0, 0, -6.35), x_dir=(-1, 0, 0), z_dir=(0, 0, -1)).offset(-CUT_EXTRUDE2_DEPTH_BACK)):
        with Locations((-12.7, 13.97)):
            Circle(SKETCH3_R)
    extrude(amount=CUT_EXTRUDE2_DEPTH + CUT_EXTRUDE2_DEPTH_BACK, mode=Mode.SUBTRACT)


solid = part.part
